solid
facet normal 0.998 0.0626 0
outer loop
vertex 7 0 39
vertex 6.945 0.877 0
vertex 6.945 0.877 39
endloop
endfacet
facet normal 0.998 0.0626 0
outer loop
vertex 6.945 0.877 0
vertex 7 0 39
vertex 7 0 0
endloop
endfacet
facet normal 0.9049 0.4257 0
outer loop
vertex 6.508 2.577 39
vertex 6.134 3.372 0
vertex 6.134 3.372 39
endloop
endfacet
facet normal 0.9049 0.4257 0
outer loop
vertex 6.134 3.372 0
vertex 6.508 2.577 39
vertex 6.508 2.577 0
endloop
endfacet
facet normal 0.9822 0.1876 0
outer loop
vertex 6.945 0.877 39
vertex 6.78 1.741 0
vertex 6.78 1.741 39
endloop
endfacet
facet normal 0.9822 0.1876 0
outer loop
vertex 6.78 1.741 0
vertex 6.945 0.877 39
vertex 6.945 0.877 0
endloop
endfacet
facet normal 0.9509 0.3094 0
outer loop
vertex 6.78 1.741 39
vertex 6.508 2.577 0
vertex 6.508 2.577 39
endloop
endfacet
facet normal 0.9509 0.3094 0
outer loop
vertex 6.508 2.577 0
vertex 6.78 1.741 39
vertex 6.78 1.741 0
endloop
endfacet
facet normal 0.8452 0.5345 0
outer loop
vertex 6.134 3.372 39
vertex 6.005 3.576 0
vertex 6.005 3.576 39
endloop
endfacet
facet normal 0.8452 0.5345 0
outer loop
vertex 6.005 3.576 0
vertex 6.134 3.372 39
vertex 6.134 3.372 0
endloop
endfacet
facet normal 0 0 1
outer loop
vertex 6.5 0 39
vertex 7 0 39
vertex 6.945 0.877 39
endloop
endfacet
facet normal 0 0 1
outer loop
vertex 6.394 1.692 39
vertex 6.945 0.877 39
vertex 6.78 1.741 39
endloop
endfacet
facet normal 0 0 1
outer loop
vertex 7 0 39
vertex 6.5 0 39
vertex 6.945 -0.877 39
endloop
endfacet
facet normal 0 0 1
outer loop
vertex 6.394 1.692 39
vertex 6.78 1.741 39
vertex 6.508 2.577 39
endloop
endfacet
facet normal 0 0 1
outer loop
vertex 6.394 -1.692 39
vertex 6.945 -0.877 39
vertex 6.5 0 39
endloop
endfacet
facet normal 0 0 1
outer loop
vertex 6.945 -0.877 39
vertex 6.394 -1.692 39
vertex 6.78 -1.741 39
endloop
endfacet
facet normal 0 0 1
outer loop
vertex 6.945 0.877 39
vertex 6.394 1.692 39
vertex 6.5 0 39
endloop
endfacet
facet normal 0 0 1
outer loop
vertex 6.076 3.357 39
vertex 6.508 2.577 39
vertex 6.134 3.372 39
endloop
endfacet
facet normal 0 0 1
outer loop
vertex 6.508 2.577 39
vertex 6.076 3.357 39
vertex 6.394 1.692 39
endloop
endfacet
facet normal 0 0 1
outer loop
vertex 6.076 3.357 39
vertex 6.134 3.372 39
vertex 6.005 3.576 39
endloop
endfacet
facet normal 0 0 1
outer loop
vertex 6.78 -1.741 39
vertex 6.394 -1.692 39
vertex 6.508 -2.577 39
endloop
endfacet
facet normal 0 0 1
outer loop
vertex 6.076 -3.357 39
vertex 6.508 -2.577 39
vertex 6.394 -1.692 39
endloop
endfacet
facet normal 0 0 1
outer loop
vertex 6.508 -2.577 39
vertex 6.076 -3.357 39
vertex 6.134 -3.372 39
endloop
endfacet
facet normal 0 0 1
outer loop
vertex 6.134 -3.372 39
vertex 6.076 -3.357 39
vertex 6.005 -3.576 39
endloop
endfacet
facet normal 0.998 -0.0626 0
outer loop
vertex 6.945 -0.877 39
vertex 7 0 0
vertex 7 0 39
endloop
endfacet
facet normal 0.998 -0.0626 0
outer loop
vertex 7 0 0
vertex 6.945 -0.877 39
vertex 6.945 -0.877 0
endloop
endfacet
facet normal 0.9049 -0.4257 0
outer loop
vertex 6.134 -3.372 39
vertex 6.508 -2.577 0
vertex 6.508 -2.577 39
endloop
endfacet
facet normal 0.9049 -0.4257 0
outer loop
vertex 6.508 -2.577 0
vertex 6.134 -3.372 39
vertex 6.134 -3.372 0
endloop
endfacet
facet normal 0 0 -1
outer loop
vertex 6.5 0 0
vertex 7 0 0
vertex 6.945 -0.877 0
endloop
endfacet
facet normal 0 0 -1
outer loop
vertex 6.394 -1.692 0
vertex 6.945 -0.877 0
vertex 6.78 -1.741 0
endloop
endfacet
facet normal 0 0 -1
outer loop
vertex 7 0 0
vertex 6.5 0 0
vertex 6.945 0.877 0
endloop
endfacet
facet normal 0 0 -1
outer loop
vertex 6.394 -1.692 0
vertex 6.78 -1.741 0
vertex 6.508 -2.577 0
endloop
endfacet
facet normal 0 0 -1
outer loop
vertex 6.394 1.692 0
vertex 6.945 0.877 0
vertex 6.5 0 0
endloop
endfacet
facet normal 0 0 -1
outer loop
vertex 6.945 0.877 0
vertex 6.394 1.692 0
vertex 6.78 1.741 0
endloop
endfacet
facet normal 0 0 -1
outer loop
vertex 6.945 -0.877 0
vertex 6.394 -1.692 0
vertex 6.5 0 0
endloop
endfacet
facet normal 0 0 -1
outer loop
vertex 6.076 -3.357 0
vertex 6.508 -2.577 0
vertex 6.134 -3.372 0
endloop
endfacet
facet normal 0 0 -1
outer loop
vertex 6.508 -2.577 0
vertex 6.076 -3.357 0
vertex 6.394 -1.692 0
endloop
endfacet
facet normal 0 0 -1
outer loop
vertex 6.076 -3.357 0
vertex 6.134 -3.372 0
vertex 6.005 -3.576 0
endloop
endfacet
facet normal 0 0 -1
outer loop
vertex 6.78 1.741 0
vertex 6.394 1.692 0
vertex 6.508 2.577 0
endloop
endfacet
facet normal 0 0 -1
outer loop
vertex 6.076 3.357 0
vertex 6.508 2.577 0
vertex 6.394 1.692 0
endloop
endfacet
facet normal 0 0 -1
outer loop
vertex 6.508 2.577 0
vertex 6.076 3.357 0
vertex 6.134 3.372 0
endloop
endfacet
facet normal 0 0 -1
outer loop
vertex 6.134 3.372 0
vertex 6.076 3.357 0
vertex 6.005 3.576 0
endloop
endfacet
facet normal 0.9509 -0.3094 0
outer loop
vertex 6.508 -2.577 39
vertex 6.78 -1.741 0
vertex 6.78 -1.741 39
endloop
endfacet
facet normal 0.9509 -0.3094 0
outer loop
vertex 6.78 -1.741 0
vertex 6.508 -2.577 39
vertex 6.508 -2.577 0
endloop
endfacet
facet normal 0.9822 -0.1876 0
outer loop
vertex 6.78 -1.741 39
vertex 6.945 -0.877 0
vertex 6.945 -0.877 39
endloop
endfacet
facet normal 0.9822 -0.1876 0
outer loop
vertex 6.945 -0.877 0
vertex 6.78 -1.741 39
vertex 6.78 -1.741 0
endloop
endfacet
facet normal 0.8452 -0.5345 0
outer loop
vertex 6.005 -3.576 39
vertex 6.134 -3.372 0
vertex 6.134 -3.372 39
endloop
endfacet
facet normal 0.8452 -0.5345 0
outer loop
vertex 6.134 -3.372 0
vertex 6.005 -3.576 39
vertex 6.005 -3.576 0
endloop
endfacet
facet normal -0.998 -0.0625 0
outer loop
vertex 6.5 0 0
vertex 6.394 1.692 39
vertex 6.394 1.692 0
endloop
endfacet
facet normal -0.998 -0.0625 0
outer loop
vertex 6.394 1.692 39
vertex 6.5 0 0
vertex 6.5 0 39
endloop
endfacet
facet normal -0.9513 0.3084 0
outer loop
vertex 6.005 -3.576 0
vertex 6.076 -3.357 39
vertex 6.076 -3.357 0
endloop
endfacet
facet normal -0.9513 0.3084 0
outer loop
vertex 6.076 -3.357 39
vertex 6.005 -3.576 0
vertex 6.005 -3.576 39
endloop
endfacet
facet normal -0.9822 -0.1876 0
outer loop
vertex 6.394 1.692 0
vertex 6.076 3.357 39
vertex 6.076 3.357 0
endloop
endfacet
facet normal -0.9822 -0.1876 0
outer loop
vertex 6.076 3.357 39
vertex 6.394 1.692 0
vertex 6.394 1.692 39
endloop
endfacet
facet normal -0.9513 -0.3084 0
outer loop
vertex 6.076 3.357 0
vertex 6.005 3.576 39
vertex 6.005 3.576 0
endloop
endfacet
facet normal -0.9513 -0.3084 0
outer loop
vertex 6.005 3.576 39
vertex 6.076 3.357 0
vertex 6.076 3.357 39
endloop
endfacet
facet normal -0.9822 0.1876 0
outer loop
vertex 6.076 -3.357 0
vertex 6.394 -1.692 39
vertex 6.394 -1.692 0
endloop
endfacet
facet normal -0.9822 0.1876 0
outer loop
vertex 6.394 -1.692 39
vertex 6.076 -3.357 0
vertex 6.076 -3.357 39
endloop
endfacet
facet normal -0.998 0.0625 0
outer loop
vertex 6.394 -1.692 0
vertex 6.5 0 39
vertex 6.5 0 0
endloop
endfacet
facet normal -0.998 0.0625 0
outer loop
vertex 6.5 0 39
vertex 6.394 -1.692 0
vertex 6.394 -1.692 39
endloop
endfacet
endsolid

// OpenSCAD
$fn = 50;


difference() {
	union() {
		cylinder(h = 39, r = 7.0000000000);
		translate(v = [-10.0000000000, 0, 0]) {
			cylinder(h = 39, r = 7.0000000000);
		}
	}
	union() {
		cylinder(h = 39, r = 3.2500000000);
		cylinder(h = 39, r = 1.8000000000);
		cylinder(h = 39, r = 1.8000000000);
		cylinder(h = 39, r = 1.8000000000);
		translate(v = [-14.5000000000, 0, 0]) {
			hull() {
				translate(v = [-3.7500000000, 0.0000000000, 0]) {
					cylinder(h = 39, r = 10.5000000000);
				}
				translate(v = [3.7500000000, 0.0000000000, 0]) {
					cylinder(h = 39, r = 10.5000000000);
				}
				translate(v = [-3.7500000000, -0.0000000000, 0]) {
					cylinder(h = 39, r = 10.5000000000);
				}
				translate(v = [3.7500000000, -0.0000000000, 0]) {
					cylinder(h = 39, r = 10.5000000000);
				}
			}
		}
		translate(v = [-7.0000000000, 0, 0.0000000000]) {
			cylinder(h = 39, r = 13.5000000000);
		}
	}
}
